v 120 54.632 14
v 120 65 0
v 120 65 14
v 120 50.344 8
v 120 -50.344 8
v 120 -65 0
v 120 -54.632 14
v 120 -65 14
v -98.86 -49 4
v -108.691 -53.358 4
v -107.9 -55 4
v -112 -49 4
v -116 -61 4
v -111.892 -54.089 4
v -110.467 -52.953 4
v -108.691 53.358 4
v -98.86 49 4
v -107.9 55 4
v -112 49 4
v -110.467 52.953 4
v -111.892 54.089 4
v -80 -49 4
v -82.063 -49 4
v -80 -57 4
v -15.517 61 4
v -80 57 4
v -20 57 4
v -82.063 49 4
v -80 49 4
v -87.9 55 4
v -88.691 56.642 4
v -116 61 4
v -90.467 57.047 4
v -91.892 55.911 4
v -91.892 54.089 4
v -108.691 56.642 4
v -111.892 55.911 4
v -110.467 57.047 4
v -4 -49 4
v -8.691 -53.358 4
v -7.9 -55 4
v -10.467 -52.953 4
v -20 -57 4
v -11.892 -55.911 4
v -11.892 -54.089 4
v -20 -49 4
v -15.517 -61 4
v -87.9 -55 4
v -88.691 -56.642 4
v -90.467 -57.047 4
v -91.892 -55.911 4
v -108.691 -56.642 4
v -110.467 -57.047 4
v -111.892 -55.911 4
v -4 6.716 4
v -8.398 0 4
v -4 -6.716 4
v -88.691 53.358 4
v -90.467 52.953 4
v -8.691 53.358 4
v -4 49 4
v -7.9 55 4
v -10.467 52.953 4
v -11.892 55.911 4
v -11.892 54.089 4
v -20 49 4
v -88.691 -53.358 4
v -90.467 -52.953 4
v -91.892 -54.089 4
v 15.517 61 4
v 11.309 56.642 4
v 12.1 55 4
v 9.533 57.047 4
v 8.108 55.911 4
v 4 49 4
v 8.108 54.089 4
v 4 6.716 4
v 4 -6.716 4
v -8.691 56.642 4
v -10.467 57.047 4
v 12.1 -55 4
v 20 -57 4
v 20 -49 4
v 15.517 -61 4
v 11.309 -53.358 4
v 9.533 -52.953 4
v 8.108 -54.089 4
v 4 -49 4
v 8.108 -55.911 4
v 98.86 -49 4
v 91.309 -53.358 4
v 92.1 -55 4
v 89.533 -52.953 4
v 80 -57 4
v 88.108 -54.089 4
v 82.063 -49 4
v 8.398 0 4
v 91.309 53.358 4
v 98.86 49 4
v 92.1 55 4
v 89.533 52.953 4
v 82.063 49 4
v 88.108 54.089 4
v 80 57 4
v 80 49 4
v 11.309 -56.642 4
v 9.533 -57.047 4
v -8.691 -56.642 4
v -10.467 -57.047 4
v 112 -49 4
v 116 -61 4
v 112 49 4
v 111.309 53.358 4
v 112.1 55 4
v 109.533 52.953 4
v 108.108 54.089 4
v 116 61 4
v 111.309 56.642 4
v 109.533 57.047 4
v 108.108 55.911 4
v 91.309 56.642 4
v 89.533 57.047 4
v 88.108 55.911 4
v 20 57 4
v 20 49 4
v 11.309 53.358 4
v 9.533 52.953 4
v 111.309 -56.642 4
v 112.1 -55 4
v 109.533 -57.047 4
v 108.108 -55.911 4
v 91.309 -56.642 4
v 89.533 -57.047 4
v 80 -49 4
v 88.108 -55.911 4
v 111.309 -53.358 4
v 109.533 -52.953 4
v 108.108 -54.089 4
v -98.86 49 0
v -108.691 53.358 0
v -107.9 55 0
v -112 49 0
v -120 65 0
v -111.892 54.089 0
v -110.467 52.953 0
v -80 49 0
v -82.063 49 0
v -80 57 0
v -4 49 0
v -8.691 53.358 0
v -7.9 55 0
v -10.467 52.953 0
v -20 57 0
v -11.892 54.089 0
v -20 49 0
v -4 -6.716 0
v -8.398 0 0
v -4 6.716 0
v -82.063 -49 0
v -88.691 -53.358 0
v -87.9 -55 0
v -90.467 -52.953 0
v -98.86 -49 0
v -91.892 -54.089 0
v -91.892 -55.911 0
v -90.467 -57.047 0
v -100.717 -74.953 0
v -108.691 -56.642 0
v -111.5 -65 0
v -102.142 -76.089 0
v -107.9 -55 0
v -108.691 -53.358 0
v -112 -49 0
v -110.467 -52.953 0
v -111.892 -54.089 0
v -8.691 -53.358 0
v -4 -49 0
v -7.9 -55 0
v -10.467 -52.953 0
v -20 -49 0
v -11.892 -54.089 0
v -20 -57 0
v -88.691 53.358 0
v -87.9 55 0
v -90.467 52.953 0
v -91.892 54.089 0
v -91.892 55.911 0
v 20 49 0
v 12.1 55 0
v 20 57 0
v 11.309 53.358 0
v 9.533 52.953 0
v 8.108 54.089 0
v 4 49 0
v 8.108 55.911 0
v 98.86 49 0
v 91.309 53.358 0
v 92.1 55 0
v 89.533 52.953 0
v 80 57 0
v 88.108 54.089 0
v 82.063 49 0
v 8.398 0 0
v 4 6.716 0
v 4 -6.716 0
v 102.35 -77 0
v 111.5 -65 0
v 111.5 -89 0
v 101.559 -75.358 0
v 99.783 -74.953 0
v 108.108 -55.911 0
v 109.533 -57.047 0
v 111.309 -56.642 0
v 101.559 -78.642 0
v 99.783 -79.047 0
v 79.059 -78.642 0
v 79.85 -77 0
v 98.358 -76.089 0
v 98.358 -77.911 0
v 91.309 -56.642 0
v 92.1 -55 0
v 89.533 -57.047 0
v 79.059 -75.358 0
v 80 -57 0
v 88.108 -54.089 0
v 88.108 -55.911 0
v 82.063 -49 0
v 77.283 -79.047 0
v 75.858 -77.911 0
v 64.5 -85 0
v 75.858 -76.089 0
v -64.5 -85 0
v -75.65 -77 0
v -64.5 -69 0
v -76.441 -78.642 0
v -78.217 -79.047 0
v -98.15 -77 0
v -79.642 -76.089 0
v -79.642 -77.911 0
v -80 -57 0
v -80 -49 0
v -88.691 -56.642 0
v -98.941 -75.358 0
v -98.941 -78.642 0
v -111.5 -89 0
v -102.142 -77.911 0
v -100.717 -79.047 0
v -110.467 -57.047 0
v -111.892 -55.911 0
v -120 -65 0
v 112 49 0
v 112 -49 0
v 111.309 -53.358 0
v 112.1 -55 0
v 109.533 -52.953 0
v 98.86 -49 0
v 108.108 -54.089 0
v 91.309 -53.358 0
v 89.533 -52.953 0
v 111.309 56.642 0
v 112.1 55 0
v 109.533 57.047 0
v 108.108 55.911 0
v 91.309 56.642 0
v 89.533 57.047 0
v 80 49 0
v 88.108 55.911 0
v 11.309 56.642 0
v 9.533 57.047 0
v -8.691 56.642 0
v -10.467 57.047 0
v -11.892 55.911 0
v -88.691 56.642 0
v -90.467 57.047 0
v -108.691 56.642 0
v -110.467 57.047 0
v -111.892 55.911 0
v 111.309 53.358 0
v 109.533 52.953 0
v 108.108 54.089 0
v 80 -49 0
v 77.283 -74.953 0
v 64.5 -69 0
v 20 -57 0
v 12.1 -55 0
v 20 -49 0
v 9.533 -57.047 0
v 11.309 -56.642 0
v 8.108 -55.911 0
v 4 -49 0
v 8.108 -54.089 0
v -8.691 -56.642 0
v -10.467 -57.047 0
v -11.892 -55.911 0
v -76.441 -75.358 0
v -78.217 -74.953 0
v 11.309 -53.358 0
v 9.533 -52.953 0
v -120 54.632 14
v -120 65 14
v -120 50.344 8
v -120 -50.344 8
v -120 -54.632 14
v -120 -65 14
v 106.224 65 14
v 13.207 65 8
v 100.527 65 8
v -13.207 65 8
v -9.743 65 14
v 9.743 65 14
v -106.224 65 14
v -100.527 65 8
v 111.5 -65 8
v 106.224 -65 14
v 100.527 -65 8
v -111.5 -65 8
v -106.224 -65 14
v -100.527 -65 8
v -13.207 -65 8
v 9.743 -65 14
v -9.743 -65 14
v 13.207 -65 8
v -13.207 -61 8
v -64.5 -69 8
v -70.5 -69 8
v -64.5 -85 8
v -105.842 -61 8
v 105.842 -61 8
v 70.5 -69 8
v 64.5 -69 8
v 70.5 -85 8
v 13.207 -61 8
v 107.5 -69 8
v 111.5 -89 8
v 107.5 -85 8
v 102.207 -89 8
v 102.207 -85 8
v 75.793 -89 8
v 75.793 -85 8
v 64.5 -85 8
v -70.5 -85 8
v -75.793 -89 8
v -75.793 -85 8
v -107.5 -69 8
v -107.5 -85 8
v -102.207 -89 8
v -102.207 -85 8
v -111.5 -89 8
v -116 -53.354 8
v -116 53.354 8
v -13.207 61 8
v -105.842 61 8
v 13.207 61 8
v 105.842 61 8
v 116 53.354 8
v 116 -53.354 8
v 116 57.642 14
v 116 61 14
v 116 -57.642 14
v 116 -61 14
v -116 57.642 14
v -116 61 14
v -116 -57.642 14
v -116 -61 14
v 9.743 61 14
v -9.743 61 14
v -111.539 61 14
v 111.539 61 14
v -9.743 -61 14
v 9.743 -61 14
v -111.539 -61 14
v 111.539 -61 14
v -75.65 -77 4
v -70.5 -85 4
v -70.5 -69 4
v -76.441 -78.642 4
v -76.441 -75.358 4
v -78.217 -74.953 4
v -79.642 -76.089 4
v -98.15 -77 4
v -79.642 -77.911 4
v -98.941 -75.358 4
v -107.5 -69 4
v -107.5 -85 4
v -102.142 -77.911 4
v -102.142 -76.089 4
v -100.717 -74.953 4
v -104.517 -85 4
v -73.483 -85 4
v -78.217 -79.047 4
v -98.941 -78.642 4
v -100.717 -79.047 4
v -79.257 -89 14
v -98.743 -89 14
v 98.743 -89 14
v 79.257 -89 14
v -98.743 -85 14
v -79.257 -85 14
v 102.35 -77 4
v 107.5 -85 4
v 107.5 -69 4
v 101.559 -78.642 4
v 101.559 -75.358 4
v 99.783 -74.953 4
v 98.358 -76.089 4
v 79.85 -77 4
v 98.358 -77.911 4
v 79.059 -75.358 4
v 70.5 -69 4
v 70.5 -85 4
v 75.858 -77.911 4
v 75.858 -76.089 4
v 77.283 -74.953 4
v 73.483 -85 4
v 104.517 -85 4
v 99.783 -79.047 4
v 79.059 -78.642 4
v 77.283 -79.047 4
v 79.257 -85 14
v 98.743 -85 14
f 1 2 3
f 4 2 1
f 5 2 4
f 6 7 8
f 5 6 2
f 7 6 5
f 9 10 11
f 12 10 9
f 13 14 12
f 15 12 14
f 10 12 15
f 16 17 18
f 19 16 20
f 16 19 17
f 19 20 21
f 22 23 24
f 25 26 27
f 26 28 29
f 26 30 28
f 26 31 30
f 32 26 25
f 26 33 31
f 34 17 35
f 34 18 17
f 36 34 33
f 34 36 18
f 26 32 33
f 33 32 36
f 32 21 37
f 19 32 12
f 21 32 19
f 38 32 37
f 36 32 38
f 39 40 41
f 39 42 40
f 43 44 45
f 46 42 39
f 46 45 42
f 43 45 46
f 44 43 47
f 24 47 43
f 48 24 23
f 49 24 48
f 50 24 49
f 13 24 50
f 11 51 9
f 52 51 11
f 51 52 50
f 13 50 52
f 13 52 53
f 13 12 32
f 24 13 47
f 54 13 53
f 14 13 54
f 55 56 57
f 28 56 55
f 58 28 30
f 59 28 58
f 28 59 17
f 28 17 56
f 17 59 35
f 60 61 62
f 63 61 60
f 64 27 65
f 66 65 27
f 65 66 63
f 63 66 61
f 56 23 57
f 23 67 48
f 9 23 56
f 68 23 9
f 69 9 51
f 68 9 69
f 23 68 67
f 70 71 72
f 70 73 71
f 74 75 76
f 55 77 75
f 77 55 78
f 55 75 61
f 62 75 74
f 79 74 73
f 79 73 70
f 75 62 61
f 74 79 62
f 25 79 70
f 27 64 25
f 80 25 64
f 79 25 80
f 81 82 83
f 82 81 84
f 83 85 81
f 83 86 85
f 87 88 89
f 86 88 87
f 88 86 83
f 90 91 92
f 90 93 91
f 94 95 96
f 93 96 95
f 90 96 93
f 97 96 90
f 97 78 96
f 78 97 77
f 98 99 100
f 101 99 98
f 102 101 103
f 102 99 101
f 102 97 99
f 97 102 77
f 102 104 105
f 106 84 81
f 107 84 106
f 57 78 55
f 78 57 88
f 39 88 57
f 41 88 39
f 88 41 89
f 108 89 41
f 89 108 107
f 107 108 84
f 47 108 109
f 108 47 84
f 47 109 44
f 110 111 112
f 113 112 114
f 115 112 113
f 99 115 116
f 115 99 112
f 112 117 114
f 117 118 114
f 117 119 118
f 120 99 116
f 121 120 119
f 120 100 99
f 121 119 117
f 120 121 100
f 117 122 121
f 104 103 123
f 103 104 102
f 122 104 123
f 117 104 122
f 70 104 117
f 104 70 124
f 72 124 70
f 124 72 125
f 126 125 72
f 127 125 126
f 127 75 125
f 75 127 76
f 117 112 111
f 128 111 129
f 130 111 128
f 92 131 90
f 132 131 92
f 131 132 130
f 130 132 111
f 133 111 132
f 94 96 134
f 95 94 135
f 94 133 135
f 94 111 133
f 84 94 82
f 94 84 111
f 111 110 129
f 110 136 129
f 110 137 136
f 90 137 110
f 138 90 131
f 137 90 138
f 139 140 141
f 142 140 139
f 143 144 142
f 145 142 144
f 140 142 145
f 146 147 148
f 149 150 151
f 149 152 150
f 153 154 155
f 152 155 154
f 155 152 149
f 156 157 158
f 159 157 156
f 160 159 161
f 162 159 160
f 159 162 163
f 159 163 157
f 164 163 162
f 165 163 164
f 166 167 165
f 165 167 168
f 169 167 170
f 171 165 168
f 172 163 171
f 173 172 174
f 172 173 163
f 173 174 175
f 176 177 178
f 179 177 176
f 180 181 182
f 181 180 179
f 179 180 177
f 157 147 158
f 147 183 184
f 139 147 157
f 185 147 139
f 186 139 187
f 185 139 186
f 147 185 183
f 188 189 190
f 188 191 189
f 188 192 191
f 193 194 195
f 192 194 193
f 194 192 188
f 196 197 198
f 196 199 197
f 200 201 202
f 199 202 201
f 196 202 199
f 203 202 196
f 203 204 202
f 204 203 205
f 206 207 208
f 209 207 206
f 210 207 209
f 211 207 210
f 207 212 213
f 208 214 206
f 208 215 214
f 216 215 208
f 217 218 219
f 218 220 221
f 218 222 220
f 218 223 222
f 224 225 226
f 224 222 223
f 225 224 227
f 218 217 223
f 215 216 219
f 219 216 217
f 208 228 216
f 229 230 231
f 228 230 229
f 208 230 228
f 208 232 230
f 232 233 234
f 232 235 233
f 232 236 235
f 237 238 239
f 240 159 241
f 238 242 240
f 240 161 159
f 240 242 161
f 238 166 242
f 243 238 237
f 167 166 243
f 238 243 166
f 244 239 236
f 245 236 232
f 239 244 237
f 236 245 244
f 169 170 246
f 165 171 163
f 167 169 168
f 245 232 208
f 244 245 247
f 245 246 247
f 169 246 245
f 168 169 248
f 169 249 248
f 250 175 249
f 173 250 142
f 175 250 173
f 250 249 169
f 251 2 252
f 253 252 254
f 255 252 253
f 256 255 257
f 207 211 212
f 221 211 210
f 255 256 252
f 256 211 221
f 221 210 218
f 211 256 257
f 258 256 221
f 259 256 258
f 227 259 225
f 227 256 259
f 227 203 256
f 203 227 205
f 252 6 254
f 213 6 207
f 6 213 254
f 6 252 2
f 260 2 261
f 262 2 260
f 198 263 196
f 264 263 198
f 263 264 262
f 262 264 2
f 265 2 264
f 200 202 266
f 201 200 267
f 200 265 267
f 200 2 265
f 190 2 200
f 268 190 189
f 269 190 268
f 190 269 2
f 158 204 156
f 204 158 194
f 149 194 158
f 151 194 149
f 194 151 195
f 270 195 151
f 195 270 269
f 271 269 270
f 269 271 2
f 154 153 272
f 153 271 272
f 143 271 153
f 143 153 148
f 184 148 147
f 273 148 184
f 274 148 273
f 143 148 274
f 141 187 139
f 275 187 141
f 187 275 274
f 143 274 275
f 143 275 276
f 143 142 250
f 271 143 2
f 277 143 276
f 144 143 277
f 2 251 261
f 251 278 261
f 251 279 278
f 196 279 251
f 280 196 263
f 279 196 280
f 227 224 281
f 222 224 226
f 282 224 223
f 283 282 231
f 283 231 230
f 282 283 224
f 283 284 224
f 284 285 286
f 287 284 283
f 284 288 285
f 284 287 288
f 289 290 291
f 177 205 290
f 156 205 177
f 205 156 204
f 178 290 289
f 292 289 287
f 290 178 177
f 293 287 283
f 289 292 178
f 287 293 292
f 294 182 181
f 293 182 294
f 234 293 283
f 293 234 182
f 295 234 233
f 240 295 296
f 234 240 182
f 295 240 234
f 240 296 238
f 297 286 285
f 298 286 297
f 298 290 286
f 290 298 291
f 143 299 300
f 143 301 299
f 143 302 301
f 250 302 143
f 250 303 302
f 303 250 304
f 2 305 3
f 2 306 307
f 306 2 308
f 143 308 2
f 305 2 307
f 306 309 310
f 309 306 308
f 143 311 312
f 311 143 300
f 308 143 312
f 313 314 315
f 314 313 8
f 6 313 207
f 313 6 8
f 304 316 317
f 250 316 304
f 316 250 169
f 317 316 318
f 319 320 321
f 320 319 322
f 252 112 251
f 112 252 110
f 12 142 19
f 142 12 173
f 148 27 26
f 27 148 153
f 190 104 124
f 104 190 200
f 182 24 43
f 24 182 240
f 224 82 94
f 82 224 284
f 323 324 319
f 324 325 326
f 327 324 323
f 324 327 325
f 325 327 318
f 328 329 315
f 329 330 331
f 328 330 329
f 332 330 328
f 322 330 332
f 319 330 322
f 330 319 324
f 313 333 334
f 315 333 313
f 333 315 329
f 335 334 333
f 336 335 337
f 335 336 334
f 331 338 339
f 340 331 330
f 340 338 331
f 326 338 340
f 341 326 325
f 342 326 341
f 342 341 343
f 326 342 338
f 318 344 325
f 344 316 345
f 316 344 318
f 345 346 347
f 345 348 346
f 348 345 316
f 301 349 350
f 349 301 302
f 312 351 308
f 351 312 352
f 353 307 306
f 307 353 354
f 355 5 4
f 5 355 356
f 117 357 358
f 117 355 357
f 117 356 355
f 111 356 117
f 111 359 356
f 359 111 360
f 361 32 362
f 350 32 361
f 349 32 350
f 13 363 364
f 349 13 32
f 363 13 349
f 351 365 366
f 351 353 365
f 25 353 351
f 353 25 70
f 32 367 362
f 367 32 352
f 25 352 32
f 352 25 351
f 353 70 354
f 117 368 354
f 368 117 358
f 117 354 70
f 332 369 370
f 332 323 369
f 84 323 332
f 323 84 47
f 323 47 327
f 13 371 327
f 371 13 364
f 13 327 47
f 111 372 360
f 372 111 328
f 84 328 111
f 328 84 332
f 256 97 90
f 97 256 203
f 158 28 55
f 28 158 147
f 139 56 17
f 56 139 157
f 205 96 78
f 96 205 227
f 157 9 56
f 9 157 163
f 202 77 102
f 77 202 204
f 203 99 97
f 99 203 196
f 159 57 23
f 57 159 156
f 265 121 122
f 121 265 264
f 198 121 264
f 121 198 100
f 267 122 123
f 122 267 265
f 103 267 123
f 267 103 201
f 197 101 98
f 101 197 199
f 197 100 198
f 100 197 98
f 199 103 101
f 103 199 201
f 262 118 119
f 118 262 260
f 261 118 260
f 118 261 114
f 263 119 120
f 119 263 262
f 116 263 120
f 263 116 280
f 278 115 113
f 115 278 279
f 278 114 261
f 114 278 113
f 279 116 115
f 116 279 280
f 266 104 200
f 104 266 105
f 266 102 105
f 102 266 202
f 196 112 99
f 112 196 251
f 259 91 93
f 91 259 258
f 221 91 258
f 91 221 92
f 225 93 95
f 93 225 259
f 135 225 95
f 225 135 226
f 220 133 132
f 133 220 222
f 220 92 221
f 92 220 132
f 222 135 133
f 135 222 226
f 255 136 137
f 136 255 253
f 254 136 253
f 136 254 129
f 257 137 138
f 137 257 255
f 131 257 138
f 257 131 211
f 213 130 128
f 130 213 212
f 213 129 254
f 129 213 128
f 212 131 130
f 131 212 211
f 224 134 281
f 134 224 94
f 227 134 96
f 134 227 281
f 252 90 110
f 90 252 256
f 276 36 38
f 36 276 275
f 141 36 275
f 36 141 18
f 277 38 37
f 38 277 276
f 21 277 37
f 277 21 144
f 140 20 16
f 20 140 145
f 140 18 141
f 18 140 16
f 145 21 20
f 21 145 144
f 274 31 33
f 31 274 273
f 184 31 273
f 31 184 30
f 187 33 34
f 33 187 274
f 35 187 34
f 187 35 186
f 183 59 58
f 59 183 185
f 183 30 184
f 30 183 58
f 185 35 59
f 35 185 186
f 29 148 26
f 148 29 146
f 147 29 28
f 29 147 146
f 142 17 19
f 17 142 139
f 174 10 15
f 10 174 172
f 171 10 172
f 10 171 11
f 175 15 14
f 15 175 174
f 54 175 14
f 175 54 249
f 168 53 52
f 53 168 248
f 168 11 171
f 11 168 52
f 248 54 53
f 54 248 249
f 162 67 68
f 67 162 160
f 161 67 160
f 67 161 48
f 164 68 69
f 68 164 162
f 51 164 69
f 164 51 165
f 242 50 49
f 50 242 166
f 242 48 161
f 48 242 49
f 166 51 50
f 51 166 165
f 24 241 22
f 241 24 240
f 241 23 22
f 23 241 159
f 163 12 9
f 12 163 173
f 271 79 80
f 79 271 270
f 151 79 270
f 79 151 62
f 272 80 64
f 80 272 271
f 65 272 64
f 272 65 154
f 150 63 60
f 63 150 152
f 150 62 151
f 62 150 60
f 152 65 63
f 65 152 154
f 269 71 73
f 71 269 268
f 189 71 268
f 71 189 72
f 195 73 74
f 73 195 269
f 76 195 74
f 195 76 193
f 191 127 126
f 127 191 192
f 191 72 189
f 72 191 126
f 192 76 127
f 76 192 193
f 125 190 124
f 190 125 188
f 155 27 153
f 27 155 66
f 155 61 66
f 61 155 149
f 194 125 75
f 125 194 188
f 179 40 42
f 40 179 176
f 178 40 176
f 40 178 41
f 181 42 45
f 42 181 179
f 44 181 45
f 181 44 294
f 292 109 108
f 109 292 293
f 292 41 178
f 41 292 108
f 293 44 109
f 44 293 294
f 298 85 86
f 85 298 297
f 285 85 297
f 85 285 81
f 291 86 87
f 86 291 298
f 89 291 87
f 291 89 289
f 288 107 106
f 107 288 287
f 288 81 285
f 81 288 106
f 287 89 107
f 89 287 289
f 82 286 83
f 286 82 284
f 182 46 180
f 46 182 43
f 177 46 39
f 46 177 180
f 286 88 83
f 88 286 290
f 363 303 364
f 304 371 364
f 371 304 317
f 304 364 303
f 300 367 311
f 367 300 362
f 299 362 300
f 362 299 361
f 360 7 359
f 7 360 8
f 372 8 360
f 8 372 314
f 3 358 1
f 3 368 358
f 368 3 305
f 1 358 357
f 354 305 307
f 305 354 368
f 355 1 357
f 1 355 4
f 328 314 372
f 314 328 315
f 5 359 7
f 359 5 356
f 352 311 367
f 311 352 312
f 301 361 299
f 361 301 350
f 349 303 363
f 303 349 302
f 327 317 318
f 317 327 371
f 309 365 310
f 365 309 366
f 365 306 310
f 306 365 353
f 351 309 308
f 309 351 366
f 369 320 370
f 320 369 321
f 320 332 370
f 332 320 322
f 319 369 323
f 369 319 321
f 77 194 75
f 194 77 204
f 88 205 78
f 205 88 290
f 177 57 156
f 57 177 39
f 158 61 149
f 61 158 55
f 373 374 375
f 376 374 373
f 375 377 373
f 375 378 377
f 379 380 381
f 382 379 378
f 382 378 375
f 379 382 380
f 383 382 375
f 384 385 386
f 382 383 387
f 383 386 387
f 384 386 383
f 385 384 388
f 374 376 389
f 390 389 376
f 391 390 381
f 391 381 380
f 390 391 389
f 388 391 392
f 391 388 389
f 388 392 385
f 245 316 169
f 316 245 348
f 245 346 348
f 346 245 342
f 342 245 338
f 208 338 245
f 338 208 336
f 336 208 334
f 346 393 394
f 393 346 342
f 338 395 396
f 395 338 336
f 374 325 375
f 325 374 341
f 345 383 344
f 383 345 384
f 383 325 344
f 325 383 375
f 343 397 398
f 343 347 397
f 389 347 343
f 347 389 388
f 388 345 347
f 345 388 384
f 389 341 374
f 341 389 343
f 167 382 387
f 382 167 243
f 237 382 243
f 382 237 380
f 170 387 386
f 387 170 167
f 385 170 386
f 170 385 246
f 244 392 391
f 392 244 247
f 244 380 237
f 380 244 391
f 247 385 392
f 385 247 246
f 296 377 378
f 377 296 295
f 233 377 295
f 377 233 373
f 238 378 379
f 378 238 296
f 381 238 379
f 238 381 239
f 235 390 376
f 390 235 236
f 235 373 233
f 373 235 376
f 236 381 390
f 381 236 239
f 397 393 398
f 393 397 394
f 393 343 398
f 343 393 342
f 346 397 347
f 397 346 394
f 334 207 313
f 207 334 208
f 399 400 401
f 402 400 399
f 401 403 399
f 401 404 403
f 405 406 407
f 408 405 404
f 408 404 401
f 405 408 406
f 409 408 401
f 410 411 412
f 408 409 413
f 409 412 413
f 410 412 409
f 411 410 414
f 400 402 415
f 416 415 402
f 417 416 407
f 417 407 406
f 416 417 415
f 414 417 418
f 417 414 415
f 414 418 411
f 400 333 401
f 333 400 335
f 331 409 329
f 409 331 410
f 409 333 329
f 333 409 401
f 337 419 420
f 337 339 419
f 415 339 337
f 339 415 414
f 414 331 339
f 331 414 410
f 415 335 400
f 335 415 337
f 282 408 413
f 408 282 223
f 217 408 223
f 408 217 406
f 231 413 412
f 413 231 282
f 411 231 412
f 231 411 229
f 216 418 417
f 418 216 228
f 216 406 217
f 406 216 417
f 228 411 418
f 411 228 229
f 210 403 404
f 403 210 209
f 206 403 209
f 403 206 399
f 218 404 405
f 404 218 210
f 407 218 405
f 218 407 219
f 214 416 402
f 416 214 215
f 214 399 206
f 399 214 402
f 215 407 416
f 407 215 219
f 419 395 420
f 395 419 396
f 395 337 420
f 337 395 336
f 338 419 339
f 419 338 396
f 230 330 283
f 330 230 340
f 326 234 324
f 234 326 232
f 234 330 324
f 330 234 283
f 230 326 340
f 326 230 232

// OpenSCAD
// file: reader-defs.scad
// Default dimensions

m4 = 4.2 ;              // Close clearance hole for M4 screw
m8 = 8.2 ;              // Close clearance hole for M8 screw


// Winder

shaft_d = m8 ;          // Shaft diameter
core_d = 18 ;           // Core diameter
bevel_d = 30 ;          // Bevel inner diameter
outer_d = 40 ;          // Spool outer diameter
crank_hub_d = 25 ;      // Diameter of crank hub
handle_hub_d = 10 ;     // Diameter of handle end of crank
handle_d = m4 ;         // Diameter of handle
base_fix_d = m4 ;       // Diameter of base fixing screw hole

crank_l = 40 ;          // Length of crank (between shaft and handle centres

side_t = 4 ;            // Thickness of spool side
side_rim_t = 2 ;        // Thickness of spool side rim (beveled)
crank_hub_t = 6 ;       // Thickness of crank hub
crank_arm_t = 4 ;       // Thickness of crank arm

spool_w_all = 112 ;     // Width of spool (overall between ends)
spool_w_end = 20 ;      // Width of spool (to inside of end)
spool_w_mid = spool_w_all - 2*spool_w_end ;
                        // width of spool middle spacer

shaft_nut_af = 13 ;     // Nut diameter across faces
shaft_nut_t  = 4 ;      // Nut thickness

handle_nut_af = 7 ;     // Nut diameter across faces
handle_nut_t  = 3 ;     // Nut thickness

winder_side_h = 50 ;    // Height to centre of winder shaft
winder_side_w = 40 ;    // Width base of winder side support
winder_side_t = 4 ;     // Thickness of winder side support
winder_apex_d = 16 ;    // Radius of apex of winder side support
winder_base_t = 16 ;    // Thickness at base of winder

// Reader bridge

read_l = spool_w_all ;  // Reader bridge length (inner)
read_w = 16 ;           // Width of bridge
read_extra_w = 5 ;      // Extra width for reader bridge for tie-down
read_h = 90 ;           // Height of reader bridge above base plate
read_side_t = side_t ;  // Reader bridge side support thickness
read_side_base_t = 16 ; // Reader bridge side support thickness at base 
read_total_l     = read_l + 2*(read_side_t + read_extra_w) ;
read_side_apex_w = 24 ;
read_side_apex_h = 6 ;
read_side_base_w = 40 ;
read_side_peg_d  = m4 ;



read_groove_w = 2.25 ;  // EL wire goove width
read_groove_d = 3 ;     // EL wire groove depth

// Parts for holding phone camera

hold_side_l = 80 ;      // Length is side of holder
hold_side_h = 10 ;      // Height of side above base
hold_side_t1 = 7 ;      // Thickness of side at base
hold_side_t2 = 8 ;      // Thickness of side at top

hold_base_l1 = 60 ;     // Length of base near side
hold_base_l2 = 50 ;     // Length of base towards centre
hold_base_t = 8 ;       // Thickness of base (to accommodate hole)
hold_base_w = 20 ;      // Width of base piece

hold_rail_p = 40 ;      // Distance between rail holes
hold_rail_d = m4 ;      // Diameter of rail holes

hold_fix_p = 25 ;       // Distance between fixing holes
hold_fix_d = m4 ;       // Diameter of fixing holes
hold_fix_o = 30 ;       // Offset from vertical rod to holder fixing holes

hold_fix_t = 6 ;        // Thickness of phone holder-to-rod fixing
hold_fix_w = 8 ;        // Width of phone holder-to-rod fixing
hold_fix_l = 80 ;       // Length of phone holder-to-rod fixing
hold_fix_rod_d = 8 ;    // Diameter of phone holder support rod
hold_fix_hub_d = 16 ;   // Diameter of phone holder support hub

hold_fix_plate_l = hold_fix_o + hold_fix_rod_d*2 ;
hold_fix_plate_w = hold_fix_p + hold_fix_rod_d*2 ;

// Bracket to hold phone camera support rod

rod_support_h = 50 ;
rod_support_t = side_t ;    // Rod support side support thickness
rod_support_base_t = 20 ;   // Rod support side support thickness at base 
rod_support_base_o = 89 ;   // X-offset from reader bar to phone support rod

rod_support_apex_w = 24 ;
rod_support_base_w = 45 ;
rod_support_shell_w = 24 ;

// Baseplate dimensions

base_l   = 240 ;
base_w   = 130 ;
base_t   = 4 ;
border_w = 8 ;
shell_h  = 8 ;
brace_w  = 8 ;
mount_l  = winder_side_w ;
mount_w  = winder_base_t ;
hole_d   = m4 ;

foot_lx  = 36 ;     // At top surface of baseplate: tapers away to foot
foot_ly  = 26 ;
foot_h   = 14 ;

plate_px = base_l/2 ;
plate_py = base_w/2 ;

// Misc
delta = 0.01 ;          // Small value to force overlap
spacing = outer_d+10 ;  // Object spacing (layout pitch)
part_gap = 10 ;         // Spacing between exploded assembly parts
// main file
// baseplate.scad

include <reader-defs.scad> ;

module rect_frame(lx, ly, t, w) {
    // Rectangular frame on X-Y plane, centred on the origin
    //
    // lx = overall X extent
    // ly = overall Y extent
    // t  = thickness of frame
    // w  = width of frame borders
    //
    translate([0,0,t/2]) {
        difference() { 
            cube(size=[lx, ly, t], center=true) ;
            cube(size=[lx-w*2, ly-w*2, t+delta*2], center=true) ;
        }
    }
}


module rect_shell(lx, ly, t, w, h) {
    // Rectangular shell on X-Y plane, centred on the origin, consisting
    // of a rectangular frame and sides.
    //
    // lx = overall X extent
    // ly = overall Y extent
    // t  = thickness of frame and sides
    // w  = width of frame borders
    // h  = height of sides
    //
    union() {
        rect_frame(lx, ly, t, w) ;
        rect_frame(lx, ly, h, t) ;
    }
}

module diagonal_brace(lx, ly, t, w, flip=false) {
    // Rectangular diagonal brace on X-Y plane, centred on the origin:
    // fits into 'rect_frame' with same dimensions
    //
    // lx = overall X extent
    // ly = overall Y extent
    // t  = thickness of brace
    // w  = width of diagonal_brace
    // flip = if False than align lower-left to upper-right
    //        if true then align upper-left to lower-right
    //
    rot_angle = flip ? atan2(ly, lx) : atan2(-ly, lx) ;
    translate([0,0,t/2]) {
        intersection() {
            cube(size=[lx, ly, t], center=true) ; // clip region
            rotate([0,0,rot_angle])
                cube(size=[lx+ly, w, t], center=true) ;  // "stock" bar for cross-brace
        }
    }
}

module cross_brace_y(ly, px, t, w) {
    // Rectangular Y-spanning brace on X-Y plane, centred on the origin:
    //
    // ly = overall Y extent
    // px = X position
    // t  = thickness of brace
    // w  = width of brace
    //
    translate([0,0,t/2]) {
        cube(size=[w, ly, t], center=true) ;
    }
}

module mount_holes(lx, ly, t, hp, hd, px=0, py=0) {
    // Mounting holes on X-axis for mounting plate.
    // Defined separately so they can be applied toa merged shape.
    //
    // Holes are centred within the Y-extent of the plate not including an outer shall,
    // which is presumed to be the same thickness as the plate itself.
    //
    // lx = overall X extent of plate
    // ly = overall Y extent of plate
    // t  = thickness of plate
    // hp = hole pitch (between centres)
    // hd = hole diameter
    // px = position of plate corner - sign determines which corner
    // px = position of plate corner - sign determines which corner
    //
    tx = ( px < 0 ? (px+lx/2)
         : px > 0 ? (px-lx/2)
         : 0 ) ;
    ty = ( py < 0 ? (py+(ly+t)/2)
         : py > 0 ? (py-(ly+t)/2)
         : 0 ) ;
    translate([tx,ty,t/2]) {
        union() {
            translate([-hp/2,0,0]) cylinder(t+delta*2, d=hd, center=true) ;
            translate([ hp/2,0,0]) cylinder(t+delta*2, d=hd, center=true) ;
        }
    }
}

module mount_plate(lx, ly,  t, hp, hd, px=0, py=0) {
    // Mounting plate on X-Y plane, on frame corner/edge, with 2 mounting holes on X-axis.
    // (use 'translate' to position on baseplate)
    // (use 'rotate' to change orientaton)
    //
    // lx = overall X extent of plate
    // ly = overall Y extent of plate
    // t  = thickness of plate
    // hp = hole pitch (between centres)
    // hd = hole diameter
    // px = position of plate corner - sign determines which corner
    // px = position of plate corner - sign determines which corner
    //
    tx = ( px < 0 ? (px+lx/2)
         : px > 0 ? (px-lx/2)
         : 0 ) ;
    ty = ( py < 0 ? (py+ly/2)
         : py > 0 ? (py-ly/2)
         : 0 ) ;
    difference() {
        translate([tx,ty,t/2]) {
            cube(size=[lx, ly, t], center=true) ; // plate
        }
        mount_holes(lx, ly,  t, hp, hd, px, py) ;
    }
}

module corner_support_foot(lx, ly, t, h, px, py) {
    // Support foot on X-Y plane, on frame corner
    //
    // lx = overall X extent of foot
    // ly = overall Y extent of foot
    // t  = thickness of foot
    // h  = height of foot
    // px = position of plate corner - sign determines which corner
    // px = position of plate corner - sign determines which corner
    //
    ra = 30*sign(px)*sign(py) ;
    intersection() {
        rect_frame(abs(px)*2, abs(py)*2, h, t) ;    // clip from rectangular shell
        translate([px,py,-h])             // clip_profile for angled feet
            rotate(a=ra, v=[-px,py,0])
                linear_extrude(height=h*4, center=true) 
                    polygon([[-lx,0], [0,-ly], [+lx,0], [0,+ly] ]) ;
    }        
}

//module side_support_foot(l, t, h, px, py) {
//    // @@TODO?
//    0
//}

module side_support_foot_x(l, h, t, px, py) {
    // Support foot on X-axis-aligned edge of frame
    //
    // l  = length of support foot
    // h  = height of support foot
    // t  = thickness of support foot
    // px = X position of centre of foot 
    // py = Y position of outside of foot
    //
    translate([px, py-sign(py)*t/2, h/2]) {
        intersection() {
            cube(size=[l, t, h], center=true) ;  // "stock" bar for foot
            translate([-h/2,0,0])
                rotate([0,-30,0])
                    cube(size=[l, t, l], center=true) ;
            translate([+h/2,0,0])
                rotate([0,+30,0])
                    cube(size=[l, t, l], center=true) ;
        }
    }

}

// Tests
// rect_frame(100, 60, 4, 6);
// rect_shell(100, 60, 4, 6, 12);
// diagonal_brace(100, 60, 4, 8) ;
// diagonal_brace(100, 60, 4, 6, true) ;
// diagonal_brace(100, 60, 4, 6, false) ;
// cross_brace_y(60, 0, 4, 6) ;


// mount_plate(20, 16, 4, 12, 4, px=+44, py=+28) ;
// mount_plate(20, 16, 4, 12, 4, 0,      py=+28) ;
// mount_plate(20, 16, 4, 12, 4, px=-44, py=+28) ;
// mount_plate(20, 16, 4, 12, 4, px=+44, py=-28) ;
// mount_plate(20, 16, 4, 12, 4, px=0,   py=-28) ;
// mount_plate(20, 16, 4, 12, 4, px=-44, py=-28) ;
 
// lx = 30 ;
// ly = 20 ;
// px = 50 ;
// py = -30 ;
// 
// ra = 30*sign(px)*sign(py) ;
// 
// translate([px,py,-5])
// rotate(a=ra, v=[-px,py,0])
// linear_extrude(height=50, center=true) polygon([[-lx,0], [0,-ly], [+lx,0], [0,+ly] ]) ;

// rect_shell(100, 60, 4, 6, 6);
// corner_support_foot(30, 20, 4, 10, +50, +30) ;
// corner_support_foot(30, 20, 4, 10, +50, -30) ;
// corner_support_foot(30, 20, 4, 10, -50, +30) ;
// corner_support_foot(30, 20, 4, 10, -50, -30) ;
// side_support_foot_x(30, 10, 4, 0, +30) ;
// side_support_foot_x(30, 10, 4, 0, -30) ;

// Baseplate

// base_l   = 240 ;
// base_w   = 130 ;
// base_t   = 4 ;
// border_w = 8 ;
// shell_h  = 8 ;
// brace_w  = 8 ;
// mount_l  = winder_side_w ;
// mount_w  = winder_base_t ;
// hole_d   = m4 ;
// 
// foot_lx  = 30 ;
// foot_ly  = 20 ;
// foot_h   = 12 ;
// 
// plate_px = base_l/2 ;
// plate_py = base_w/2 ;

module rod_support_mounting_plate() {
    // rod support mounting plate, centred on origin
    difference() {
        union() {
            rect_shell(rod_support_base_w, rod_support_shell_w, base_t, border_w, shell_h) ;
            mount_plate(rod_support_base_w, rod_support_base_t, base_t, 
                        rod_support_base_w/2, hold_fix_d, px=0, py=-rod_support_shell_w/2) ;
            side_support_foot_x(foot_lx, foot_h, base_t, 0, -rod_support_shell_w/2) ;
        } ;
        mount_holes(rod_support_base_w, rod_support_base_t, base_t, 
                    rod_support_base_w/2, hold_fix_d, px=0, py=-rod_support_shell_w/2) ;
    }
}

module main_reader_baseplate() {
    difference() {
        union() {

            rect_shell(base_l, base_w, base_t, border_w, shell_h) ;
            cross_brace_y(base_w, 0, base_t, brace_w) ;
            diagonal_brace(base_l, base_w, base_t, brace_w, flip=false) ;
            diagonal_brace(base_l, base_w, base_t, brace_w, flip=true) ;

            mount_plate(mount_l, mount_w, base_t, winder_side_w/2, hole_d, px=+plate_px, py=+plate_py ) ;
            mount_plate(mount_l, mount_w, base_t, winder_side_w/2, hole_d, px=+plate_px, py=-plate_py) ;
            mount_plate(mount_l, mount_w, base_t, winder_side_w/2, hole_d, px=-plate_px, py=+plate_py ) ;
            mount_plate(mount_l, mount_w, base_t, winder_side_w/2, hole_d, px=-plate_px, py=-plate_py) ;
            mount_plate(mount_l, mount_w, base_t, read_side_base_w/2, hole_d, 0, py=+plate_py) ;
            mount_plate(mount_l, mount_w, base_t, read_side_base_w/2, hole_d, 0, py=-plate_py) ;

            corner_support_foot(foot_lx, foot_ly, base_t, foot_h, +base_l/2, +base_w/2) ;
            corner_support_foot(foot_lx, foot_ly, base_t, foot_h, +base_l/2, -base_w/2) ;
            corner_support_foot(foot_lx, foot_ly, base_t, foot_h, -base_l/2, +base_w/2) ;
            corner_support_foot(foot_lx, foot_ly, base_t, foot_h, -base_l/2, -base_w/2) ;
            side_support_foot_x(foot_lx, foot_h, base_t, 0, +base_w/2) ;
            side_support_foot_x(foot_lx, foot_h, base_t, 0, -base_w/2) ;
        } ;
        mount_holes(mount_l, mount_w, base_t, winder_side_w/2, hole_d, px=+plate_px, py=+plate_py ) ;
        mount_holes(mount_l, mount_w, base_t, winder_side_w/2, hole_d, px=+plate_px, py=-plate_py) ;
        mount_holes(mount_l, mount_w, base_t, winder_side_w/2, hole_d, px=-plate_px, py=+plate_py ) ;
        mount_holes(mount_l, mount_w, base_t, winder_side_w/2, hole_d, px=-plate_px, py=-plate_py) ;
        mount_holes(mount_l, mount_w, base_t, read_side_base_w/2, hole_d, 0, py=+plate_py) ;
        mount_holes(mount_l, mount_w, base_t, read_side_base_w/2, hole_d, 0, py=-plate_py) ;
    }
}

module reader_baseplate() {
    // Combine main baseplate with rod support plate
    main_reader_baseplate() ;
    translate([-rod_support_base_o, -base_w/2 - rod_support_shell_w/2,0]) {
        rod_support_mounting_plate() ;
    }
    translate([+rod_support_base_o,-base_w/2 - rod_support_shell_w/2,0]) {
        rod_support_mounting_plate() ;
    }
    translate([0,-base_w/2 - rod_support_shell_w/2,0]) {
        rect_shell(rod_support_base_o*2-rod_support_base_w+base_t, rod_support_shell_w, base_t, base_t /*border_w*/ , shell_h) ;
    }
}

// rod_support_mounting_plate() ;

// main_reader_baseplate() ;

reader_baseplate() ;
